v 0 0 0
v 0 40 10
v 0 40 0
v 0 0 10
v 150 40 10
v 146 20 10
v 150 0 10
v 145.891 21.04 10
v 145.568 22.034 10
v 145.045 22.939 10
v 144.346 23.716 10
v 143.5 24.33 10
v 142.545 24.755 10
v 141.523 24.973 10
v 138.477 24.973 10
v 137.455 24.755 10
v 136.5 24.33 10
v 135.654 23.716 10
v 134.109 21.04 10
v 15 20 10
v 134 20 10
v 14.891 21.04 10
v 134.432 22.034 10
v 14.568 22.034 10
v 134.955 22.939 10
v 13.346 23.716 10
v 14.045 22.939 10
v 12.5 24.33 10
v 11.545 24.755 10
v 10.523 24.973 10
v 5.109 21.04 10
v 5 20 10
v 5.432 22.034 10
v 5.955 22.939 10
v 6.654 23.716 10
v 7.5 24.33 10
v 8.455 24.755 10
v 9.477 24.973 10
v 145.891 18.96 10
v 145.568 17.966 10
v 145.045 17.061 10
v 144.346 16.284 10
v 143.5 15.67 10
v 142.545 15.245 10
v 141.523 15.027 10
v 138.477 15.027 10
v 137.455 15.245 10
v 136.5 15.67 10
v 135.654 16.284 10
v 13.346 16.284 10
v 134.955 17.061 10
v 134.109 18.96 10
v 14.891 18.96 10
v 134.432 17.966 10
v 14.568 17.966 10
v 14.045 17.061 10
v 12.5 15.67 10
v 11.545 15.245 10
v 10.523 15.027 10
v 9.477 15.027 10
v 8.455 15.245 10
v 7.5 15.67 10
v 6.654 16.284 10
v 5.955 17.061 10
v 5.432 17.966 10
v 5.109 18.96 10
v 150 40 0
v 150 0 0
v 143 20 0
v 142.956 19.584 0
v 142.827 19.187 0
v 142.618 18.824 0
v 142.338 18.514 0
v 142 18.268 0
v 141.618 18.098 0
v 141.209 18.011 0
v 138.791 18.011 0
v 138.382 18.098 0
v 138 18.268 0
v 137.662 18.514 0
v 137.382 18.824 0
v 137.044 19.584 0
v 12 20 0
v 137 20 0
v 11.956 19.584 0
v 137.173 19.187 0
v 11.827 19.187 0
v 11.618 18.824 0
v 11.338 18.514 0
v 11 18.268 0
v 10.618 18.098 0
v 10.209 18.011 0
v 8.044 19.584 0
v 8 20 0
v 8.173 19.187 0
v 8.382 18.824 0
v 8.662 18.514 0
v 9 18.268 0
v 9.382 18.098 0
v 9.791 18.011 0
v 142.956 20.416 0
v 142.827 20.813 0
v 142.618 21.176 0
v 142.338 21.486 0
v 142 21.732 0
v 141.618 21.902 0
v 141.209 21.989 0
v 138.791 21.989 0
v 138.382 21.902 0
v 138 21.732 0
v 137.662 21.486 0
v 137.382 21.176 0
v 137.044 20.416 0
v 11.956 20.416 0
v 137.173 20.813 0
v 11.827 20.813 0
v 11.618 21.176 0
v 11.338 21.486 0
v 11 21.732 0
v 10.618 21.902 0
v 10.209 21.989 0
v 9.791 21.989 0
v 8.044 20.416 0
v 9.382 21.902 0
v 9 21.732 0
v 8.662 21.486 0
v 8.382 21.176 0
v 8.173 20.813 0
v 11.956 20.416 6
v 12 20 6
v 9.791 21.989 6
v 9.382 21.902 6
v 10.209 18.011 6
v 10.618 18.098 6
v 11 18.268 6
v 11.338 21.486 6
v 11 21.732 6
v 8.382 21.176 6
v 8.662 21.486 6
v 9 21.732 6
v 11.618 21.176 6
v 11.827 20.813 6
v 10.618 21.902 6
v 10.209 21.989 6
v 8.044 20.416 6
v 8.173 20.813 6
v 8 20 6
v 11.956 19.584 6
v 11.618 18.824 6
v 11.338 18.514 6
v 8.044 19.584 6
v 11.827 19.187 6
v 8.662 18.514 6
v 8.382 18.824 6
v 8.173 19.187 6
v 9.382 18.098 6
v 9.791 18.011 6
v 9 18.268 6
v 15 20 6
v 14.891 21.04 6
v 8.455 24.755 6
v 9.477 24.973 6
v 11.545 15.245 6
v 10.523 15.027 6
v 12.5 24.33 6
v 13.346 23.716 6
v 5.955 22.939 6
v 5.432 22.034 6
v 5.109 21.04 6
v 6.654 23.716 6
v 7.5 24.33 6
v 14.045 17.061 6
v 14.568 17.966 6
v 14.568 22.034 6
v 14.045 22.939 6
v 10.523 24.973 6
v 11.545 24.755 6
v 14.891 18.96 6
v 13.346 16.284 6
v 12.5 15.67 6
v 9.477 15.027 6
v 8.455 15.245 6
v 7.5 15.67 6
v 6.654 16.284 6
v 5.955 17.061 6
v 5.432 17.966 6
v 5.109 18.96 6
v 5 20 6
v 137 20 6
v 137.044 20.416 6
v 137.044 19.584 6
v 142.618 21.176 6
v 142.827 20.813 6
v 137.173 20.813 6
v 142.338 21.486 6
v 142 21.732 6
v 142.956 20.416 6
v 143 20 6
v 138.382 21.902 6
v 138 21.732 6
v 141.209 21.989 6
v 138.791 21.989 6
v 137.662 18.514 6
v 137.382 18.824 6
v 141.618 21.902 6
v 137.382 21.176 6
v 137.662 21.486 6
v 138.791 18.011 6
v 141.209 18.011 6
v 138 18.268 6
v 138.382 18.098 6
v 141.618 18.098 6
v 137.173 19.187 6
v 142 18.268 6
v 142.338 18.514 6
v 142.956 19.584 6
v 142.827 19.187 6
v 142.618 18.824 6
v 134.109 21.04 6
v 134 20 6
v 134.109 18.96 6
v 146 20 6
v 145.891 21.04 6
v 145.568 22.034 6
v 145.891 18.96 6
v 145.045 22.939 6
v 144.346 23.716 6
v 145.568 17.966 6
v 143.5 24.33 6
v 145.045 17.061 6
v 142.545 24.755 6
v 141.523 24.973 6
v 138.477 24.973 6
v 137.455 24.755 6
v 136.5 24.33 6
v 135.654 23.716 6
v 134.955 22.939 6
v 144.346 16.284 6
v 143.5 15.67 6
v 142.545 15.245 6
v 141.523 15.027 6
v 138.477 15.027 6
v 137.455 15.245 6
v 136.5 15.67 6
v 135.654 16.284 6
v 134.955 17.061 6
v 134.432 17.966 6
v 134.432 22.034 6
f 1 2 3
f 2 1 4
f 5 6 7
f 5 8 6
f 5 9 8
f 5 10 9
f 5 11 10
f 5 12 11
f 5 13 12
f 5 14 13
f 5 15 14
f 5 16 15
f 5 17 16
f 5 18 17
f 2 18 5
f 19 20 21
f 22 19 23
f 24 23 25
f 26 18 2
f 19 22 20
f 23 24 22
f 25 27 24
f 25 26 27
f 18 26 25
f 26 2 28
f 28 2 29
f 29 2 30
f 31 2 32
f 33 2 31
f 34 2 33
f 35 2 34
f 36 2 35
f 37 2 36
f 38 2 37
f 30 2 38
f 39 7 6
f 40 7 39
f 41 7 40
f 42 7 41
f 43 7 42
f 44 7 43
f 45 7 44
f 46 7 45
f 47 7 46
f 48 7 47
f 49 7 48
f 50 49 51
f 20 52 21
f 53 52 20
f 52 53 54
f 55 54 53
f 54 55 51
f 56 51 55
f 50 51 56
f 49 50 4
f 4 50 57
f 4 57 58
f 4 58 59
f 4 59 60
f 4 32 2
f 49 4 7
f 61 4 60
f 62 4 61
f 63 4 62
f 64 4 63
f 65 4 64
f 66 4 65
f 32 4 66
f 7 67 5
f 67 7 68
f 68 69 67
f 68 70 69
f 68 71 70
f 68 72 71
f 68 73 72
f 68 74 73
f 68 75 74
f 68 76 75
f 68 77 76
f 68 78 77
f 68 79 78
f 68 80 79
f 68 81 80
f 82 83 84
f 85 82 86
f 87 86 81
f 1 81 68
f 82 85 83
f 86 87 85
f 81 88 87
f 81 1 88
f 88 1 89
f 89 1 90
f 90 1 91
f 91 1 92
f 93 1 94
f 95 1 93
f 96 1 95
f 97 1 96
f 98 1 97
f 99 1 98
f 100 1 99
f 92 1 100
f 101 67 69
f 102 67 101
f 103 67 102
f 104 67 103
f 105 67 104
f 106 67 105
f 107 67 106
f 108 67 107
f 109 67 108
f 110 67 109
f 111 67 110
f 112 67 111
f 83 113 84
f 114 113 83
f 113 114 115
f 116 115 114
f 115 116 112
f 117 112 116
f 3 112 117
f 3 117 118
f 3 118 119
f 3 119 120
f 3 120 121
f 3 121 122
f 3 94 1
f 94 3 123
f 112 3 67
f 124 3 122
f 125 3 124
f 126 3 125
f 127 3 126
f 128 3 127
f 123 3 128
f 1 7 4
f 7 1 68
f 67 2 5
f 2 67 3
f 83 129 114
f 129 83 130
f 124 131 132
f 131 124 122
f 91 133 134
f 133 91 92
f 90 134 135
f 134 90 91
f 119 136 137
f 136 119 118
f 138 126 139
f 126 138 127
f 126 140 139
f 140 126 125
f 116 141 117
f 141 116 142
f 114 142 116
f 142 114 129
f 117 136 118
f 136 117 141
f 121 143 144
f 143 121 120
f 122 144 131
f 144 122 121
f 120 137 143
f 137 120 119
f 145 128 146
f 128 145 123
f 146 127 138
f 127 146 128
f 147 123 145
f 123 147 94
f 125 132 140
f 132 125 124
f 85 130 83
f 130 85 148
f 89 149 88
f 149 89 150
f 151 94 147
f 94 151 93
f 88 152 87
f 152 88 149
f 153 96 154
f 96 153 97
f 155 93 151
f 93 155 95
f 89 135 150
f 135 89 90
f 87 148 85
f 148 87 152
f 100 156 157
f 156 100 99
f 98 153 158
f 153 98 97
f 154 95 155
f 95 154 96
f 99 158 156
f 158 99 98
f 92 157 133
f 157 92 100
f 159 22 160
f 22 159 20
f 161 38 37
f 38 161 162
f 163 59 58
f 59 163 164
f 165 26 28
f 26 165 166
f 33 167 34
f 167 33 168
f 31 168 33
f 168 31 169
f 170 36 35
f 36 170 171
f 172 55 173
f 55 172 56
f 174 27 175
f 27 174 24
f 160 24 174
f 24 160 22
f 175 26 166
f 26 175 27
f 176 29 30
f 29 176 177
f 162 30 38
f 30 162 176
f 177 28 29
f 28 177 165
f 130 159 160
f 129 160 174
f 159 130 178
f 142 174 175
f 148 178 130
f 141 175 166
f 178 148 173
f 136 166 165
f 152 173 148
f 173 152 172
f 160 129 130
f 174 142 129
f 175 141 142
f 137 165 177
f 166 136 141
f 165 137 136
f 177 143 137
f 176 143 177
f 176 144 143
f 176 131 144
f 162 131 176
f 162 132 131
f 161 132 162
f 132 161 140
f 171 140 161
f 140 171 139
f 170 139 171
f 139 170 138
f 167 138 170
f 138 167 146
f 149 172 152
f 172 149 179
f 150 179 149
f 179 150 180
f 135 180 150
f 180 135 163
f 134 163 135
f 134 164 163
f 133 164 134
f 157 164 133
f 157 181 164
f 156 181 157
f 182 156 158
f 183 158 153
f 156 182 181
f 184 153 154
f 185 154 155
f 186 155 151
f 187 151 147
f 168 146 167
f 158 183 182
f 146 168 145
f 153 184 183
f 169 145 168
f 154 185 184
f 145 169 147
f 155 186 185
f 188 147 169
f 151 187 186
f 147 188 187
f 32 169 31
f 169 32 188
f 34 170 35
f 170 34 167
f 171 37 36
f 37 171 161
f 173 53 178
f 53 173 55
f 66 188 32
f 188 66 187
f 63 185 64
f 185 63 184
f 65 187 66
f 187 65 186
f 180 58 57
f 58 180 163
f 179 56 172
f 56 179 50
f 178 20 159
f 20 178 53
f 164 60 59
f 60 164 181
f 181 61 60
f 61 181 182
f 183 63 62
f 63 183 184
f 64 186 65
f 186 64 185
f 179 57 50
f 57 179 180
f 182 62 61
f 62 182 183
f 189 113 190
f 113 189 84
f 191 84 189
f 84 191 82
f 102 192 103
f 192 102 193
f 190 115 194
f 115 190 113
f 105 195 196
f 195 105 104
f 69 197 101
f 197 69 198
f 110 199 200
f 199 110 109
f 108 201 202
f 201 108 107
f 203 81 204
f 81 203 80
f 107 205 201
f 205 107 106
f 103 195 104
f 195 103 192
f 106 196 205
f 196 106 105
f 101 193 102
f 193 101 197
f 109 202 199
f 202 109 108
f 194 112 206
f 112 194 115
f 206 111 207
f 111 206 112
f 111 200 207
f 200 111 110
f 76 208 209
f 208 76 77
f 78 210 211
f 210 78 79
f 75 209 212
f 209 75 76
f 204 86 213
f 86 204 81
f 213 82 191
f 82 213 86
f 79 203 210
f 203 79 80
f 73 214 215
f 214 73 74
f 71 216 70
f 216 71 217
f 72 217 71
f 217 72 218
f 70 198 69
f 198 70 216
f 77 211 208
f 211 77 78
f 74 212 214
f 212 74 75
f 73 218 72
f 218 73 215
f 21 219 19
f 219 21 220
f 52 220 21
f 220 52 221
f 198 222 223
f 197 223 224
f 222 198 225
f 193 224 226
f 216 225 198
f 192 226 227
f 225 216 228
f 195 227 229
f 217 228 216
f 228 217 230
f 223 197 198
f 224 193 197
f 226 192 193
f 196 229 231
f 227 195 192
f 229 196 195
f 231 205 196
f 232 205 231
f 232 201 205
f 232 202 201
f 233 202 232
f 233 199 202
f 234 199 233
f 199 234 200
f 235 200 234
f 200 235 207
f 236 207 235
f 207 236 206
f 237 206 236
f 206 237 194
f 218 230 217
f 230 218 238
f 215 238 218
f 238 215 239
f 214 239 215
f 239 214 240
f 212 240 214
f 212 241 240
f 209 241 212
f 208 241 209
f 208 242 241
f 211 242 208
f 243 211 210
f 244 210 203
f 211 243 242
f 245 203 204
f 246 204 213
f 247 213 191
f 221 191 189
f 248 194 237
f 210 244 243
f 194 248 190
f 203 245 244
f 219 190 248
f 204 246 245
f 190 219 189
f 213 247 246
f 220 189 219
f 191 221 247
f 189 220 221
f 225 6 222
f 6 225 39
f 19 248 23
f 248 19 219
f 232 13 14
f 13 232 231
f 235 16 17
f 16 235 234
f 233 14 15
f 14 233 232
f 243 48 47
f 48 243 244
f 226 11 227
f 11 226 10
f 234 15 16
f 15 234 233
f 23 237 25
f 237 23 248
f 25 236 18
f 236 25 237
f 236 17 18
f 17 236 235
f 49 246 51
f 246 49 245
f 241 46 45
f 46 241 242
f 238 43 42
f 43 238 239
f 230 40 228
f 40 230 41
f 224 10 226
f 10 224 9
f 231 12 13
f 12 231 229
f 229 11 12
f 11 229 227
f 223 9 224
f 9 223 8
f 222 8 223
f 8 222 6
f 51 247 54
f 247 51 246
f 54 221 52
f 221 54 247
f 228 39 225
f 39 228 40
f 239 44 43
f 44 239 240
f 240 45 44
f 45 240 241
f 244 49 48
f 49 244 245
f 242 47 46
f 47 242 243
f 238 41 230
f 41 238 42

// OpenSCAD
$fn=30;
difference(){
cube([150,40,10]);

translate([10,20,-1])cylinder(d=4,h=20);
translate([10,20,6])cylinder(d=10,h=20);

hull(){
translate([139,20,-1])cylinder(d=4,h=20);
translate([141,20,-1])cylinder(d=4,h=20);
}
hull(){
translate([139,20,6])cylinder(d=10,h=20);
translate([141,20,6])cylinder(d=10,h=20);
}
}
